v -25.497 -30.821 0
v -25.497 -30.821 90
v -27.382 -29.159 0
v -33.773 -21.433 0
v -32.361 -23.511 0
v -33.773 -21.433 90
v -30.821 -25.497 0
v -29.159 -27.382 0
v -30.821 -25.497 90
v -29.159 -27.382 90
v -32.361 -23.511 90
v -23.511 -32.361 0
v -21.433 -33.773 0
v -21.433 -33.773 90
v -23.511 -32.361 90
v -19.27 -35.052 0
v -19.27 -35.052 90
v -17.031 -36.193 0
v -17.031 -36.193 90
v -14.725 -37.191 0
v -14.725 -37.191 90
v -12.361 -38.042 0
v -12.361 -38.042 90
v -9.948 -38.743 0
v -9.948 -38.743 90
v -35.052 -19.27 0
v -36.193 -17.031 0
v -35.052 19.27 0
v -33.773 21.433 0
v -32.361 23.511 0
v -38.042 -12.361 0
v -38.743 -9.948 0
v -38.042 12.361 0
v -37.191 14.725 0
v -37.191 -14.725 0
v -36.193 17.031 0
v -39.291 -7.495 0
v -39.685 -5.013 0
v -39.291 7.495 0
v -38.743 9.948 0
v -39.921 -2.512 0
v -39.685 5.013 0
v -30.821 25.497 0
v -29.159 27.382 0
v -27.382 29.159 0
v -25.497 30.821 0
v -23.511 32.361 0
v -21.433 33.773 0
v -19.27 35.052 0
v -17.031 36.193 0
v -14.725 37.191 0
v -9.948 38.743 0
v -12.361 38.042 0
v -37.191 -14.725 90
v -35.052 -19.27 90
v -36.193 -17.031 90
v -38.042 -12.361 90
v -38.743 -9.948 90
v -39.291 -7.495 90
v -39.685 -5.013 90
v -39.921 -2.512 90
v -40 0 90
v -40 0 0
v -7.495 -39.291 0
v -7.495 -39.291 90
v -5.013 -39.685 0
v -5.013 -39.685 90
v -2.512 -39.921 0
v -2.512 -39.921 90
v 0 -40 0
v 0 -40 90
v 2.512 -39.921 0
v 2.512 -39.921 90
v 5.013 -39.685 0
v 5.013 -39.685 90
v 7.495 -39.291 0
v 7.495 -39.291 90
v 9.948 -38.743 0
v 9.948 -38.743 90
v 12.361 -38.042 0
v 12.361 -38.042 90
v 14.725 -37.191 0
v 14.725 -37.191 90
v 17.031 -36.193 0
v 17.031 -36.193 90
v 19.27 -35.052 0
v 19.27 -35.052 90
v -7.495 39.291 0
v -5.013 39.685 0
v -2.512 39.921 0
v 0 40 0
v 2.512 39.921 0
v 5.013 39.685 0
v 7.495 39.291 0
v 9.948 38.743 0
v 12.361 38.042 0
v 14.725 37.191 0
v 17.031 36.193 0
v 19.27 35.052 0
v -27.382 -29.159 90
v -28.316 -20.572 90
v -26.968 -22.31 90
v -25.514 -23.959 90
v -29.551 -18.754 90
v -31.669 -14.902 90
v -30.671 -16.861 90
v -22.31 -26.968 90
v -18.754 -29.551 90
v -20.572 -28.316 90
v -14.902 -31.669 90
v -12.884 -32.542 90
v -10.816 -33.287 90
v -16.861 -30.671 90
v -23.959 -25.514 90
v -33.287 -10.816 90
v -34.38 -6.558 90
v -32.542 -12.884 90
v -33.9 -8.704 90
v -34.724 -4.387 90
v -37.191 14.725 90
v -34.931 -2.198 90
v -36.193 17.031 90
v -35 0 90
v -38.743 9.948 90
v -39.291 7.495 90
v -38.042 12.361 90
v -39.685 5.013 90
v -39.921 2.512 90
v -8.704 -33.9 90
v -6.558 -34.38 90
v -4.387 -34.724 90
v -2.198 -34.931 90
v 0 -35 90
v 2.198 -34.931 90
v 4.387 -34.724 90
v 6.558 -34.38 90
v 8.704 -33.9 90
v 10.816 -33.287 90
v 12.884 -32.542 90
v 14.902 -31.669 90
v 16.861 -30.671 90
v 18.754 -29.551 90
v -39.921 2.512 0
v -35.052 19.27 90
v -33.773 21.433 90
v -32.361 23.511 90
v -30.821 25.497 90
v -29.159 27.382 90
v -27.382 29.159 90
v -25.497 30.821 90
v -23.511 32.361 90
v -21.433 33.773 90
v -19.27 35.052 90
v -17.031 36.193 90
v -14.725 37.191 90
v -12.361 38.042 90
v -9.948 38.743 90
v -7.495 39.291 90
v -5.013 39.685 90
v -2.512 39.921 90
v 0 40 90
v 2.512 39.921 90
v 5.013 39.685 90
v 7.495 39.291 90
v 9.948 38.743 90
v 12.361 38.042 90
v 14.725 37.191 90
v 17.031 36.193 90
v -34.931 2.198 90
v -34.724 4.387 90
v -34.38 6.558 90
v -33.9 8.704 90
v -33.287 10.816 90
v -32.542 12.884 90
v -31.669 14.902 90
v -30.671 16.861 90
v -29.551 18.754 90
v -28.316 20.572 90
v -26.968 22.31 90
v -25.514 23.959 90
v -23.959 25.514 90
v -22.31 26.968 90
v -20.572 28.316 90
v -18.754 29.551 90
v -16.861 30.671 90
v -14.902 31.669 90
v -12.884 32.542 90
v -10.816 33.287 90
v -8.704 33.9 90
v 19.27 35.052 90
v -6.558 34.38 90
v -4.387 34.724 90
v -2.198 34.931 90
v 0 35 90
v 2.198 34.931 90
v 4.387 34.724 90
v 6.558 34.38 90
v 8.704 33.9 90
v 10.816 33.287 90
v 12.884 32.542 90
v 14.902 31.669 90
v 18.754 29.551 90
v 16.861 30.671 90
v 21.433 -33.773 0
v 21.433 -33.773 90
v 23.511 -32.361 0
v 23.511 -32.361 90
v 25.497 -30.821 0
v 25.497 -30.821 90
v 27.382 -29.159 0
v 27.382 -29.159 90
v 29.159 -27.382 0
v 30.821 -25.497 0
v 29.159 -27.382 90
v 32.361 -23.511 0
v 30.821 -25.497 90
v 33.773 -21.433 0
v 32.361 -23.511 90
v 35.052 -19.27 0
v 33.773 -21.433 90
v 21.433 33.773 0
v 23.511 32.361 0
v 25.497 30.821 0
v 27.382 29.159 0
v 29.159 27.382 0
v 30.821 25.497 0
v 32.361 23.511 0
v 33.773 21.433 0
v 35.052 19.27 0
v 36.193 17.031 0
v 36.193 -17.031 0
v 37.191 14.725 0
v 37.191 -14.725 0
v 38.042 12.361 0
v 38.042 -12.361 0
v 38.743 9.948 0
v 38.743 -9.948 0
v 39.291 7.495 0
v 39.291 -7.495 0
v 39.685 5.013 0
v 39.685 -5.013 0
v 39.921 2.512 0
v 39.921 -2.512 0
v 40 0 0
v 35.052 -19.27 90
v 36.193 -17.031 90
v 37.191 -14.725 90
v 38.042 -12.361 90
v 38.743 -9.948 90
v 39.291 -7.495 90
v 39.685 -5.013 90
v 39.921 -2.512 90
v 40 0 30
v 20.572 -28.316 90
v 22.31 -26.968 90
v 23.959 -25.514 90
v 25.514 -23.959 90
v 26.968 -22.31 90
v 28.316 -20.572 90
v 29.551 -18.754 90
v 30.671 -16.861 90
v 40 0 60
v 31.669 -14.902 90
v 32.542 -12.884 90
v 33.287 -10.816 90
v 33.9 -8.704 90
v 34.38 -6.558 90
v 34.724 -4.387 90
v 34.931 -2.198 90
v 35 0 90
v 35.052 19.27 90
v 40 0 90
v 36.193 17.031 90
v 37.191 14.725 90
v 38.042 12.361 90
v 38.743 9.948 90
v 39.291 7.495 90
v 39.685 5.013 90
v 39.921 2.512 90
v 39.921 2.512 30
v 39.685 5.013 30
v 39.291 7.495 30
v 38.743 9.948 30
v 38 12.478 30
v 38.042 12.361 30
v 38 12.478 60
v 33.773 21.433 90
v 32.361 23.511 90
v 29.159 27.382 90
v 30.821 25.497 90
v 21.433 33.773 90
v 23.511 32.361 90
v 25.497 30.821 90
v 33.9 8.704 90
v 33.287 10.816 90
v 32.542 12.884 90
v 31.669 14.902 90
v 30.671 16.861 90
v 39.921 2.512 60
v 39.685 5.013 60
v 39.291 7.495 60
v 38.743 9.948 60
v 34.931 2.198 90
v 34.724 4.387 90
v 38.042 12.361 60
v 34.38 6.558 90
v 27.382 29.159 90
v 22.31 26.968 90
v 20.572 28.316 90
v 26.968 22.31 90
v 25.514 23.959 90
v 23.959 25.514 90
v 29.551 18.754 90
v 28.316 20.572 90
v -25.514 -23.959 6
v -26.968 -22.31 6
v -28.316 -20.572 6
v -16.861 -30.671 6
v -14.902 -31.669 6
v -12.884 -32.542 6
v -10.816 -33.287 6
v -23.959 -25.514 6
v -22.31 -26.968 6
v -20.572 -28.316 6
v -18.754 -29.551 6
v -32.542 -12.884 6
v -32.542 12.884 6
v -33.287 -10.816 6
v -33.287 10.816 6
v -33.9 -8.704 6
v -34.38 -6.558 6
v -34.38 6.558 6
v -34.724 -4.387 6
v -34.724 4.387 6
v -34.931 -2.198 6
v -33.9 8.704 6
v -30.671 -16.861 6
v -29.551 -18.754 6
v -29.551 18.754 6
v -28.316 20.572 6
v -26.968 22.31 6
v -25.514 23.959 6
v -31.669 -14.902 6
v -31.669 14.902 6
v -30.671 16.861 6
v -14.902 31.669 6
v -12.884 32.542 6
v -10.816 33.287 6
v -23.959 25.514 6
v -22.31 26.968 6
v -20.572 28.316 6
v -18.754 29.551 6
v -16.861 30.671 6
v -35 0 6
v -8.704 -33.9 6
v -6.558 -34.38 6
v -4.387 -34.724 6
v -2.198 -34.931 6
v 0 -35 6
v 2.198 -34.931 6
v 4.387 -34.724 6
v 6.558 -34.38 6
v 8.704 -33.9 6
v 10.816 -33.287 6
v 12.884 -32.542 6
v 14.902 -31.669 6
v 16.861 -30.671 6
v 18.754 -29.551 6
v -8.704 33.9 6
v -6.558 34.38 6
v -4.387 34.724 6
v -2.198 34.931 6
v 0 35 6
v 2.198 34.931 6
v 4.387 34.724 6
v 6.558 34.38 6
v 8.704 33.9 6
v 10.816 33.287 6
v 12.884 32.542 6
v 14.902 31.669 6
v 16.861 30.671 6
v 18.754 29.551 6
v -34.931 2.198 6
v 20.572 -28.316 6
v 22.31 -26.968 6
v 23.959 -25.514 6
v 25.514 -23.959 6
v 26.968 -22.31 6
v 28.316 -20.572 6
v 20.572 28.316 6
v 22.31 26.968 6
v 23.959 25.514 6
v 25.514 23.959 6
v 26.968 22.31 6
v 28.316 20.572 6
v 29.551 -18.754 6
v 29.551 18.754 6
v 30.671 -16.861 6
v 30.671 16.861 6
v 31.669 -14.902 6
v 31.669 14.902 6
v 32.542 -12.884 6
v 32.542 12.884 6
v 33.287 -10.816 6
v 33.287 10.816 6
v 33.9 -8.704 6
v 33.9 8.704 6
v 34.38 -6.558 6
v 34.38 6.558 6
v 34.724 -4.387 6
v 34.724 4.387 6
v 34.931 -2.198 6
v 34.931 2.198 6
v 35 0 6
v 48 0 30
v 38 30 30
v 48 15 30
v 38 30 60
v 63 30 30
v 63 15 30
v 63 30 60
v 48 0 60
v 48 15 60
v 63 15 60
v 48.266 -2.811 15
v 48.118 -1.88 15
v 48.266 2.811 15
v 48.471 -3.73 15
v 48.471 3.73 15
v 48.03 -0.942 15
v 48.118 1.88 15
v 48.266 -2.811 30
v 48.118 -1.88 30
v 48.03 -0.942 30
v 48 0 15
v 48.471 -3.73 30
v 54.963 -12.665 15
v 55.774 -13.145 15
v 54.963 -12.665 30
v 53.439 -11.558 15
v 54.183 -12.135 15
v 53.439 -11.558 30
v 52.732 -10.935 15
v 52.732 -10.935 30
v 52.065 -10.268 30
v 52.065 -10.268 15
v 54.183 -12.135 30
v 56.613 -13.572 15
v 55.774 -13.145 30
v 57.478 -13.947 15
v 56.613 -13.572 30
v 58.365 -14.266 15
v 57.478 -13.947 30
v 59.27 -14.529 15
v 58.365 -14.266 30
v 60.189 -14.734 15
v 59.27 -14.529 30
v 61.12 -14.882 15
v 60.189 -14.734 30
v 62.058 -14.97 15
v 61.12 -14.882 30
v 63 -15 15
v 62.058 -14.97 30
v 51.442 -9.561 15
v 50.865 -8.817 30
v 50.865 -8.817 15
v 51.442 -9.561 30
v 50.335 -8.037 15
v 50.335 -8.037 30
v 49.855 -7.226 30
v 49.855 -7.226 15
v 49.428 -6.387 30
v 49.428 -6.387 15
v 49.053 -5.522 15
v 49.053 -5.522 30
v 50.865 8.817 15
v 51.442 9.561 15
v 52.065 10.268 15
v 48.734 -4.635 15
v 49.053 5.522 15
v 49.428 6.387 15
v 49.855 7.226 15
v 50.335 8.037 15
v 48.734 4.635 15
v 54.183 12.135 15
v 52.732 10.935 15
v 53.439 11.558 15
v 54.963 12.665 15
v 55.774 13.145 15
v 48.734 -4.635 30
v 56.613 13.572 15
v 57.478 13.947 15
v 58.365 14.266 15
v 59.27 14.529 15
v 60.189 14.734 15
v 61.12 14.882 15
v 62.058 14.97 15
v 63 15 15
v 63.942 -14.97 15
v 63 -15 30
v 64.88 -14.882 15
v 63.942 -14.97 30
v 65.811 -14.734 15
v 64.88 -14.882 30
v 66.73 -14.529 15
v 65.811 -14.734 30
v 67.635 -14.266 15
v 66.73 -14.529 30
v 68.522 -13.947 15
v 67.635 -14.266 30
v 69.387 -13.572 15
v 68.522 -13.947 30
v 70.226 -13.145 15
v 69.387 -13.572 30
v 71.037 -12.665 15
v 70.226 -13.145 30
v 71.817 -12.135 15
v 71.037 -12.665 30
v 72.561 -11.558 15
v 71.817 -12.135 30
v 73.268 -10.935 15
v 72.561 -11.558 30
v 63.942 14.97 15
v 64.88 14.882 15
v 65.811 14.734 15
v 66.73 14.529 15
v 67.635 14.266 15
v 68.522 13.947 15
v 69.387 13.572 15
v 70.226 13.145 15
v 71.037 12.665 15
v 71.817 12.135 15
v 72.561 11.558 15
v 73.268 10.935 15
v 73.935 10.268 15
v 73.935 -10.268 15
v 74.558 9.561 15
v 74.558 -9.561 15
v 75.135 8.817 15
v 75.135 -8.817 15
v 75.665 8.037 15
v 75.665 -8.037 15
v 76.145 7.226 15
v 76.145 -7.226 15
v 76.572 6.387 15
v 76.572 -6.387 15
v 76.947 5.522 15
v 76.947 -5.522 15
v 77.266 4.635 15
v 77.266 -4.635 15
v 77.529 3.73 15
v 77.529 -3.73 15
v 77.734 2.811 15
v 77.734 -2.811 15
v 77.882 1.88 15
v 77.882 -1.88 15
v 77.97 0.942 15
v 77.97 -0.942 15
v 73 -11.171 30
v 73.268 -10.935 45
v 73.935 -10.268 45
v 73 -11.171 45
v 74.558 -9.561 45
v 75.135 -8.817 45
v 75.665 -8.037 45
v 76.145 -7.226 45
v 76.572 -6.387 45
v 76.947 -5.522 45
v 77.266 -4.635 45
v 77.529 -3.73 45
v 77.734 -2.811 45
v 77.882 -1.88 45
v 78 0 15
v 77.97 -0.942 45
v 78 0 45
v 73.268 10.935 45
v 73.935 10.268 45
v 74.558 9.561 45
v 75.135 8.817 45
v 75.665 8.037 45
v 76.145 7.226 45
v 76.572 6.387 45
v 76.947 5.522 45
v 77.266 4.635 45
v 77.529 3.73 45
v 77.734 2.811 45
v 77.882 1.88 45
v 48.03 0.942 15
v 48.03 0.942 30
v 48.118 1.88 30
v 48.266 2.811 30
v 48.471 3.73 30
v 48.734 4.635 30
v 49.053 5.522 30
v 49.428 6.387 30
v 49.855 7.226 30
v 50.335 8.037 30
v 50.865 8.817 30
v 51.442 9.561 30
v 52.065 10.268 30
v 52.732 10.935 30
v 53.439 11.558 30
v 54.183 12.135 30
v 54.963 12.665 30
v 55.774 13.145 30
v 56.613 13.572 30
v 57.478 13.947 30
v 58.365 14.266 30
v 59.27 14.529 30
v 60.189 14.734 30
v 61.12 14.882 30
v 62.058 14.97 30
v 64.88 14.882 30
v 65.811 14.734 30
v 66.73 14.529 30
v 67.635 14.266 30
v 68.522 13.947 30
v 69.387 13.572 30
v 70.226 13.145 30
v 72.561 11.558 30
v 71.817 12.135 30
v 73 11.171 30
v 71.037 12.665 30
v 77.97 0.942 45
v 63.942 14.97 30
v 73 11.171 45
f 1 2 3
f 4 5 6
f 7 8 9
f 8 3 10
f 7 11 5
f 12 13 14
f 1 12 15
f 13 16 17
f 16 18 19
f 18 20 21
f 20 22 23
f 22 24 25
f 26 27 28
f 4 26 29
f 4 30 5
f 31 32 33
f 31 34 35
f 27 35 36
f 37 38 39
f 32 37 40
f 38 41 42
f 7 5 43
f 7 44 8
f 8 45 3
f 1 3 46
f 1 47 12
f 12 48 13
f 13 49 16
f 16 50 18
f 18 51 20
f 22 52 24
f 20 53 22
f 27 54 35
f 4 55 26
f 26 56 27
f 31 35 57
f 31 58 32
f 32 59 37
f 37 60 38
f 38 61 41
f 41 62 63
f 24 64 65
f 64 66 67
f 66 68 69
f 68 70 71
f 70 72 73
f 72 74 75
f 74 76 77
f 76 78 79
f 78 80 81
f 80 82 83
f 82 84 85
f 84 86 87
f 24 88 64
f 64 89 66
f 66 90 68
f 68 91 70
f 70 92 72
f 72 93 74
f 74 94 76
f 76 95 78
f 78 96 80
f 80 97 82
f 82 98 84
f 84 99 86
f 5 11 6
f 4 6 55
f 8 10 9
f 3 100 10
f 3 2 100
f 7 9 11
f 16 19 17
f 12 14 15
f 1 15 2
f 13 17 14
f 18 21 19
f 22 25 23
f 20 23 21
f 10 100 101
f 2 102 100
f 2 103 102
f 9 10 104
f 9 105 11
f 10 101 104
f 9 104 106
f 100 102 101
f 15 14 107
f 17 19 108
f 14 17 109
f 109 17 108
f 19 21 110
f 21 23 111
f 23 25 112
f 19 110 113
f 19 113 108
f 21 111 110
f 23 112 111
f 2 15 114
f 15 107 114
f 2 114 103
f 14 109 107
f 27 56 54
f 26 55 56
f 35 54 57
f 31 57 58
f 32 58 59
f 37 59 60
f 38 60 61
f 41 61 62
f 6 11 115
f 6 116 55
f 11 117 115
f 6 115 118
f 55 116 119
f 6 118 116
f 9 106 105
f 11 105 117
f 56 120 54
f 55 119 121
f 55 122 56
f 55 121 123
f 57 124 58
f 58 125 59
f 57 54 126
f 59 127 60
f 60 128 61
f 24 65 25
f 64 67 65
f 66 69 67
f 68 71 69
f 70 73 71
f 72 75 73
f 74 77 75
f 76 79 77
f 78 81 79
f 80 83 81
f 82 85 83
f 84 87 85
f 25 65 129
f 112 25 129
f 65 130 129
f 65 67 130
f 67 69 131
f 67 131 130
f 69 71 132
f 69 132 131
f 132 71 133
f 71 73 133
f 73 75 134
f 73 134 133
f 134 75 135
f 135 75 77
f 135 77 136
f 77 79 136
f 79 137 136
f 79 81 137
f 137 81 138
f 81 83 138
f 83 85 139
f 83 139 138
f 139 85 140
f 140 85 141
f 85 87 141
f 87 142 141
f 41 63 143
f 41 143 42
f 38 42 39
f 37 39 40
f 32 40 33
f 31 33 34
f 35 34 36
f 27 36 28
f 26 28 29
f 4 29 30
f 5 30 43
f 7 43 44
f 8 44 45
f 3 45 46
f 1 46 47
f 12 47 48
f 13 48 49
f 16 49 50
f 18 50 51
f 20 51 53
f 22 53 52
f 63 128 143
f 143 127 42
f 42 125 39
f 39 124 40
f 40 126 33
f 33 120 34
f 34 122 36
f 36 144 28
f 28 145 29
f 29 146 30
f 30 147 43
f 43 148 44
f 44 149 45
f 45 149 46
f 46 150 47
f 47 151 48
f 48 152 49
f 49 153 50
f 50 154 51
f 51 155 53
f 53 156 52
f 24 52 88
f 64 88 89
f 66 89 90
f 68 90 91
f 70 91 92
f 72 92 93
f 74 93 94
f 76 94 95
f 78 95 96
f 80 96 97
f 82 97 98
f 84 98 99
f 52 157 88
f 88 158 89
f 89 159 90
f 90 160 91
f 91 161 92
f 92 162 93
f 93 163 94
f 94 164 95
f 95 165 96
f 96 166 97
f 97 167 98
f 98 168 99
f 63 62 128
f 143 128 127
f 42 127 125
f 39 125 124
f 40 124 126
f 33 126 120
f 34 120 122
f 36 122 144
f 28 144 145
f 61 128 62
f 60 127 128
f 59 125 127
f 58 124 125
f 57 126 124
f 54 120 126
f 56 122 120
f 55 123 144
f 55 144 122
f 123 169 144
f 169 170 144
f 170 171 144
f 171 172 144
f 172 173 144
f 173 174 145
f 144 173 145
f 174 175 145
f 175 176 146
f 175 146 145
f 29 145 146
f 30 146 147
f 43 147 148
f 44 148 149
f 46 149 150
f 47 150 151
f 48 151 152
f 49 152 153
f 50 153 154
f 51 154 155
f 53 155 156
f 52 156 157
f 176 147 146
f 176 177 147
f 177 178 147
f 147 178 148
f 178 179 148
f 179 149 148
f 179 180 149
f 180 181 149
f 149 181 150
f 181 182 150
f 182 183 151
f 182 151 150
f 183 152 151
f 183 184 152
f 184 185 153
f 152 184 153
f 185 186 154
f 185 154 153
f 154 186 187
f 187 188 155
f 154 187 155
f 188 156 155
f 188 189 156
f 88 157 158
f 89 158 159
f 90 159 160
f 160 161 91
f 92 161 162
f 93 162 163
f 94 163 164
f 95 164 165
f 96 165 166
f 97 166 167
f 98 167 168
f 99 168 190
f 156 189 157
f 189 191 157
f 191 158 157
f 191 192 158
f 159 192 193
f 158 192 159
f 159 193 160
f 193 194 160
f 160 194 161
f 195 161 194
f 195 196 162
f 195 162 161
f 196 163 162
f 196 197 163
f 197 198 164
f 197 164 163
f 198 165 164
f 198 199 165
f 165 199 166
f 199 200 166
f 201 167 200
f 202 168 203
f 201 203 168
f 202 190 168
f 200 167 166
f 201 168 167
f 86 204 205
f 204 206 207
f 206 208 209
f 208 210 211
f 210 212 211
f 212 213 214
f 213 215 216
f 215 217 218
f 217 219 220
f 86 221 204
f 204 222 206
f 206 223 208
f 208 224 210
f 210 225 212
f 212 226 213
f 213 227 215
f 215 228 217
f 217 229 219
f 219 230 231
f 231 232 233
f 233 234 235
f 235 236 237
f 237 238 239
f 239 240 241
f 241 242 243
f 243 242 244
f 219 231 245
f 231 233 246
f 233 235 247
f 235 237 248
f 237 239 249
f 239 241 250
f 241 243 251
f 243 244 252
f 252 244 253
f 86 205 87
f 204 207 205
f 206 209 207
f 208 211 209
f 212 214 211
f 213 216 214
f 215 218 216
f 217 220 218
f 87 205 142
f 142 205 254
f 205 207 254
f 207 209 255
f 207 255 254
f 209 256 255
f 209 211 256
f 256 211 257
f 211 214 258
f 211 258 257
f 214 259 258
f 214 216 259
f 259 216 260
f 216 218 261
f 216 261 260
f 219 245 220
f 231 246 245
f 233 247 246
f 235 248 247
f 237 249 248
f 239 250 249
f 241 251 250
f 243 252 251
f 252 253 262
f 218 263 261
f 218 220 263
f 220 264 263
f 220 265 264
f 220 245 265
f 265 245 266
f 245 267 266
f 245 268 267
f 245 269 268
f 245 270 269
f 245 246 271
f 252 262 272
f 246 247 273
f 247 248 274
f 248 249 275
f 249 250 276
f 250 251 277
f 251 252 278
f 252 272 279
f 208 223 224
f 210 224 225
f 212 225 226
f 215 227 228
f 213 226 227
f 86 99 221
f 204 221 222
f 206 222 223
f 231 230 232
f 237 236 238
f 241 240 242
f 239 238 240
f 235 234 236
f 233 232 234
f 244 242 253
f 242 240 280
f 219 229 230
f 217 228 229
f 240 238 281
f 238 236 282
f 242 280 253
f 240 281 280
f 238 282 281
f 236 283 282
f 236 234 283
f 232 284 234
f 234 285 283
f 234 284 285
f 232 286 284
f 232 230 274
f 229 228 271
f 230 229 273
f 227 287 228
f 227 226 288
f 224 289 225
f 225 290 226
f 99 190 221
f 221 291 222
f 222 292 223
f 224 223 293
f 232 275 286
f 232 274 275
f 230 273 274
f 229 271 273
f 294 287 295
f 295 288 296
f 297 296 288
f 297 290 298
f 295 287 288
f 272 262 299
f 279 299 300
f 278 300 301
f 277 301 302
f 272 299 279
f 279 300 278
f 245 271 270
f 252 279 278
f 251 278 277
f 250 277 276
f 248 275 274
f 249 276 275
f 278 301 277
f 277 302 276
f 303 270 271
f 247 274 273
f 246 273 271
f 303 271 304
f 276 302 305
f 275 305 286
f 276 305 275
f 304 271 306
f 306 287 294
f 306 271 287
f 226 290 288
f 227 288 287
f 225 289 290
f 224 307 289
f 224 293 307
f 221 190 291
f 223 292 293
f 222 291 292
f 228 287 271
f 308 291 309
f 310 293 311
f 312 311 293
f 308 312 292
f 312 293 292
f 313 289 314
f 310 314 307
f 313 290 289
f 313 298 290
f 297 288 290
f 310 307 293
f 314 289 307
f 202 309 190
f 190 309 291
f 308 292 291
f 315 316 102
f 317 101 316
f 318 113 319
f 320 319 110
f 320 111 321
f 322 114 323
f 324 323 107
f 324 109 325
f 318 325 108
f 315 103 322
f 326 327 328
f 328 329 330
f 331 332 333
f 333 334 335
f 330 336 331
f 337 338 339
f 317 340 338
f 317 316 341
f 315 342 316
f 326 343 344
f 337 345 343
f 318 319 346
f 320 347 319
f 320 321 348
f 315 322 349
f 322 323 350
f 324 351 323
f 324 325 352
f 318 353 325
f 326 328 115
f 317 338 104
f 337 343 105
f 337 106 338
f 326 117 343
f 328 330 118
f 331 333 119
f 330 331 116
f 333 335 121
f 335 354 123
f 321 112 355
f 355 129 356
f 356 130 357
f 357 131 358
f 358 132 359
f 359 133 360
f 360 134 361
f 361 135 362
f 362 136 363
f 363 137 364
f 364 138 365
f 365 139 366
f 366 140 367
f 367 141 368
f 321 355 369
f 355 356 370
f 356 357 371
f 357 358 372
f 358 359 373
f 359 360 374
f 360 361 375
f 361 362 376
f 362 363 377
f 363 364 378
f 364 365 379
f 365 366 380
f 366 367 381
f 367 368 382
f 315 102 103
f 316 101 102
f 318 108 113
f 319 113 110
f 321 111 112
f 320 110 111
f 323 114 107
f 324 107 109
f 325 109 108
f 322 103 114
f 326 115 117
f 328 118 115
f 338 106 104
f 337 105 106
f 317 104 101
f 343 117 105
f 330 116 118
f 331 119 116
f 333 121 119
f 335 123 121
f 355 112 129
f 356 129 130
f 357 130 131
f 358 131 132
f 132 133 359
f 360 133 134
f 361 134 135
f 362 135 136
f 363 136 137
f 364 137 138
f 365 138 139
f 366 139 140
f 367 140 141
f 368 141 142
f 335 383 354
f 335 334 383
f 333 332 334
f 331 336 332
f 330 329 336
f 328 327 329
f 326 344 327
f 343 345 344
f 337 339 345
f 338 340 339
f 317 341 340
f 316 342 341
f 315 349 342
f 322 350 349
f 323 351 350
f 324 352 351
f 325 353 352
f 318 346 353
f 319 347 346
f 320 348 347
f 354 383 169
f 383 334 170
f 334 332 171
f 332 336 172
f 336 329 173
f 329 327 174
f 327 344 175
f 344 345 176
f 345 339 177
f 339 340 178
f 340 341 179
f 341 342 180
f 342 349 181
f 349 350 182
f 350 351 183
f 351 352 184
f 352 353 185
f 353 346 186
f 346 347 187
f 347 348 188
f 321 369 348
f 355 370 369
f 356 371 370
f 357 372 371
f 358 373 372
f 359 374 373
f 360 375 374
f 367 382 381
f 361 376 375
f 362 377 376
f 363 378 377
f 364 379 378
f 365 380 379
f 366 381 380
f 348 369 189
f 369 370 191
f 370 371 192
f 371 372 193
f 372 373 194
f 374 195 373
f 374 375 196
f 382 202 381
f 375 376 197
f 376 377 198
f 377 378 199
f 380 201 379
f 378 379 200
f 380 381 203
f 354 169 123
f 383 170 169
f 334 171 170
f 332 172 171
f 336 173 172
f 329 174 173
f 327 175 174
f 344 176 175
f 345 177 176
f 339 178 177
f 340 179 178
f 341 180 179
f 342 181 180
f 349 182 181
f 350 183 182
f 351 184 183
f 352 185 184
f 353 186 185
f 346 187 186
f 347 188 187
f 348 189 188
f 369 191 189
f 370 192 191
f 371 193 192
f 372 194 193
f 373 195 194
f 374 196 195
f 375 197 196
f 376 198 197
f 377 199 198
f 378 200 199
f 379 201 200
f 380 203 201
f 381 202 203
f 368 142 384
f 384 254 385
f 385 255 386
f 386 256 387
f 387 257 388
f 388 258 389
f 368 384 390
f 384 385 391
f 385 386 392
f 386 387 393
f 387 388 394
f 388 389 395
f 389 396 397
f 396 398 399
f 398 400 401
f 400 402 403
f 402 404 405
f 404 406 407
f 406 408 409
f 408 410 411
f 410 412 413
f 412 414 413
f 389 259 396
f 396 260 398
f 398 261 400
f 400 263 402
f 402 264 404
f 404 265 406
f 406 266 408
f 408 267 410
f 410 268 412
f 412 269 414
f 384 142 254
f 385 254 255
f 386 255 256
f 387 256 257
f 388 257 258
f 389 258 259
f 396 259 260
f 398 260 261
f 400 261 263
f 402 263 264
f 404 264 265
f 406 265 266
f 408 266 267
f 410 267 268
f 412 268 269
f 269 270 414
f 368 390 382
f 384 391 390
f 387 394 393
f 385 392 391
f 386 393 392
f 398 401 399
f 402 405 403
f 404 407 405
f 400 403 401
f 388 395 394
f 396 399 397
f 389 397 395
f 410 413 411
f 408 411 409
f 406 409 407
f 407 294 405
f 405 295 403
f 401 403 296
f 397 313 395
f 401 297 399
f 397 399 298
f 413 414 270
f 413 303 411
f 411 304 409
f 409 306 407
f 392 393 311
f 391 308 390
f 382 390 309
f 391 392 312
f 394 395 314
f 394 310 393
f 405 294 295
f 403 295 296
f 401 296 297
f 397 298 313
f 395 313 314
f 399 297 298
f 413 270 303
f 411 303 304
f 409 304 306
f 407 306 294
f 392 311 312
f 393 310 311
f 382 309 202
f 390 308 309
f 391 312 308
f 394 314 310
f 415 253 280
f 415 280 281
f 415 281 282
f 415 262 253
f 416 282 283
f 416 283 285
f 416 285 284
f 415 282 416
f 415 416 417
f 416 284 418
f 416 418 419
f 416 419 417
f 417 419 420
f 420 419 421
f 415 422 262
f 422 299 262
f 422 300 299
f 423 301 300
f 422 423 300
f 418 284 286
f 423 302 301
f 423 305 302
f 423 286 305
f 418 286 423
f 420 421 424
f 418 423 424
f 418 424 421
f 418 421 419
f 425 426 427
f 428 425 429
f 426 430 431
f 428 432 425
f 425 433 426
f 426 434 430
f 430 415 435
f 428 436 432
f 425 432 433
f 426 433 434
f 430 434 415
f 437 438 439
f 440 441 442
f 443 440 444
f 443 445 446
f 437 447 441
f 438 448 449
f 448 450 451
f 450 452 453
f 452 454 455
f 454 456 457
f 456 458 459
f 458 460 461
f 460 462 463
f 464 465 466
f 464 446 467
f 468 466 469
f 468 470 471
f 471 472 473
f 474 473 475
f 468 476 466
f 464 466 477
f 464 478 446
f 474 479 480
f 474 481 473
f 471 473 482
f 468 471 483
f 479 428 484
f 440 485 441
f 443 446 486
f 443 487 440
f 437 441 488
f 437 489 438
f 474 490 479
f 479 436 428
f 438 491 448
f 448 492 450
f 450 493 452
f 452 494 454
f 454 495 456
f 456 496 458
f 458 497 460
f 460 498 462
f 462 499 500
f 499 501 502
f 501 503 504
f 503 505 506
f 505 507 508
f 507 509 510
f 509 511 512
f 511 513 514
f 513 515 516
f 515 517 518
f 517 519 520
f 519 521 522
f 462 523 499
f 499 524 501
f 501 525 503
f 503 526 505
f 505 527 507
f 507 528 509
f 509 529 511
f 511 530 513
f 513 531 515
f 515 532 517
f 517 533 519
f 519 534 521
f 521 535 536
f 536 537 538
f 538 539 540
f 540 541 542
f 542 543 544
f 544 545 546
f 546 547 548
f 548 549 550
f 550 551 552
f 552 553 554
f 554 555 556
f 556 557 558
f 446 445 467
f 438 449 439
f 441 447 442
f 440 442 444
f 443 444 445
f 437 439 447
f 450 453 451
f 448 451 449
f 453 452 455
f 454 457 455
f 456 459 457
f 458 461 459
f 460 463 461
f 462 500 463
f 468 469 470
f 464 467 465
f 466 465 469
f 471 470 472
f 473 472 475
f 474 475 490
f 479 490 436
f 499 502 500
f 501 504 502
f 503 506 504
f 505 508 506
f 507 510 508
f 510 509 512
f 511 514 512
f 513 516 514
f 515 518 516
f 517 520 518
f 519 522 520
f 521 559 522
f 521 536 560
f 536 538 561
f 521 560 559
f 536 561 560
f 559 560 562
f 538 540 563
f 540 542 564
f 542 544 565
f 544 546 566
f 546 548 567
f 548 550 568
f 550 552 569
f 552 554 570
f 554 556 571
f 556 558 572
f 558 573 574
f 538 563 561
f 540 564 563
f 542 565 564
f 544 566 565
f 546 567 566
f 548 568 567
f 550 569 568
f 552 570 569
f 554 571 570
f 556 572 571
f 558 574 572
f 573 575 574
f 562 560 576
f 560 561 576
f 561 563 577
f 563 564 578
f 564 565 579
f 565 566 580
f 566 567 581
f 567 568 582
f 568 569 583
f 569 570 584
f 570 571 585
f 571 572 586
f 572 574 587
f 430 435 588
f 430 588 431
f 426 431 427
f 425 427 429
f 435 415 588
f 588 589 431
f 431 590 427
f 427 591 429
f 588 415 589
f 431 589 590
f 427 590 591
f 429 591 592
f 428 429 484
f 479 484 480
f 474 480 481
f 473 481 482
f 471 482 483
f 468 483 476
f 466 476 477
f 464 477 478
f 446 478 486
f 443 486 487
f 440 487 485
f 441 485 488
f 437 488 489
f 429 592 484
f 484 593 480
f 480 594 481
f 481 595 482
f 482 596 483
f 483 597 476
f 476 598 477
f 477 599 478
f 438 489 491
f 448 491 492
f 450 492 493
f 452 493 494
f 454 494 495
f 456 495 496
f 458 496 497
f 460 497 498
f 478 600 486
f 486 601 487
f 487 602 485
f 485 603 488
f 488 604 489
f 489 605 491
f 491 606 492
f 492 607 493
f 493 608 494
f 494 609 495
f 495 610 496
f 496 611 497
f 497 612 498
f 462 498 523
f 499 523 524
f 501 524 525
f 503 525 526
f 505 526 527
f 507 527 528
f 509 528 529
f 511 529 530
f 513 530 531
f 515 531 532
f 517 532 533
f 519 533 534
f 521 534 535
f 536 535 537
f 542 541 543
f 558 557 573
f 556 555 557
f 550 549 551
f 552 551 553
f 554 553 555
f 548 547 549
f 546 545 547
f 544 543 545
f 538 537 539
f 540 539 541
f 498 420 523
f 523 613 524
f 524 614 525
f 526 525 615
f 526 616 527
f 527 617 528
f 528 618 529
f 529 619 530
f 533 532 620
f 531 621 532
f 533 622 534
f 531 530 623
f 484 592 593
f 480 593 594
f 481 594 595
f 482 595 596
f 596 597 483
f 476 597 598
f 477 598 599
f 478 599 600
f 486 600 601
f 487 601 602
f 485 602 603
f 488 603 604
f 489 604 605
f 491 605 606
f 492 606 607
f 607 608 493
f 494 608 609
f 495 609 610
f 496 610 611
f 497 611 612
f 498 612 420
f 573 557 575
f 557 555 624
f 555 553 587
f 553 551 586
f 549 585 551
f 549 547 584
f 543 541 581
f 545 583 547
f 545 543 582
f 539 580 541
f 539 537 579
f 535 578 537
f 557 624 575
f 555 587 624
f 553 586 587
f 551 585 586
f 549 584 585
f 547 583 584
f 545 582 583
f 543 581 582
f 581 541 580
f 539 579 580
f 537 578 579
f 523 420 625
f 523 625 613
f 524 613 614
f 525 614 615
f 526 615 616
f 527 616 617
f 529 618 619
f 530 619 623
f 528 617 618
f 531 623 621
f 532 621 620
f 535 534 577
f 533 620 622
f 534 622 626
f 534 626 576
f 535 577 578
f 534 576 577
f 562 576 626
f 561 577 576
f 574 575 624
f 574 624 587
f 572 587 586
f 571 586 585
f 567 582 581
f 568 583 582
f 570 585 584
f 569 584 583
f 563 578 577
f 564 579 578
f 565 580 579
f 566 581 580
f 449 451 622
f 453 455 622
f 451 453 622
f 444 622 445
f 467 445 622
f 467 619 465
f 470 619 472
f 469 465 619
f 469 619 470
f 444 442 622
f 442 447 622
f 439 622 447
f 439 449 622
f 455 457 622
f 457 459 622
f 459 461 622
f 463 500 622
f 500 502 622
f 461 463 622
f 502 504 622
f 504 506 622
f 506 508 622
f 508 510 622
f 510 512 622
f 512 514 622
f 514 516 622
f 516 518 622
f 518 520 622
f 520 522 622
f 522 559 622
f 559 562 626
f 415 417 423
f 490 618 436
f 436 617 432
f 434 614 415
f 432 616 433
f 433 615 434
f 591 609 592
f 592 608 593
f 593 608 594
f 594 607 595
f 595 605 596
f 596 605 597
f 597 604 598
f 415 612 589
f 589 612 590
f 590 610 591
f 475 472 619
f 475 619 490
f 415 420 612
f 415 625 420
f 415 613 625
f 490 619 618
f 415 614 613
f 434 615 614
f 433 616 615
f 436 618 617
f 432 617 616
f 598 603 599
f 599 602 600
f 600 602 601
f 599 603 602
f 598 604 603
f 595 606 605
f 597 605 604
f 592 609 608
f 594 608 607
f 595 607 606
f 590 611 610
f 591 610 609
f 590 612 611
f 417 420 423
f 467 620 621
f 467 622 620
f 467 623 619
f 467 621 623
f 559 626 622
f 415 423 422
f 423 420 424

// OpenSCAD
// マグカップの設計パラメータ
mug_outer_r = 40;      // 外径 80mm -> 半径 40mm
mug_inner_r = 35;      // 内径 70mm -> 半径 35mm
mug_height = 90;       // 高さ 90mm
mug_bottom_t = 6;      // 底の厚み 6mm

handle_h = 30;         // 取っ手の高さ 30mm
handle_w = 30;         // 取っ手の幅 (Y方向) 30mm
handle_d = 40;         // 取っ手の奥行き (X方向) 40mm
handle_hole_w = 25;    // 取っ手の内側の空間の幅 25mm
handle_hole_h = 30;    // 取っ手の内側の空間の高さ 30mm

$fn = 100;

// 本体
difference() {
    // 外側の円筒
    cylinder(h = mug_height, r = mug_outer_r);
    
    // 内側の空洞（底面の厚みを考慮して上方向にずらす）
    translate([0, 0, mug_bottom_t])
        cylinder(h = mug_height, r = mug_inner_r);
}

// 取っ手 (Handle)
union() {
    translate([38, 0, 30]) { // x=38に配置することでマグ本体と確実に結合 (x=40の表面に食い込ませる)
        difference() {
            union() {
                // D字形状の構築
                // 前半部分：直線的なブロック (高さ30, 幅30, 奥行き25)
                cube([handle_d - 15, handle_w, handle_h]);
                
                // 後半部分：半円形の端 (半径15)
                // これにより「外側が半円、本体側が直線」のD字形状を実現
                translate([handle_d - 15, 0, 0])
                    rotate([0, 0, 90])
                    cylinder(h = handle_w, r = 15, center = true);
            }
            
            // 取っ手の内側の空間（指が入る穴）をくり抜く
            // 幅25mm、高さ30mmの空間を確保
            // 取っ手の中央付近に配置
            translate([10, -handle_hole_h/2, 0])
                cube([handle_hole_w, handle_hole_h, handle_hole_h]);
        }
    }
}
